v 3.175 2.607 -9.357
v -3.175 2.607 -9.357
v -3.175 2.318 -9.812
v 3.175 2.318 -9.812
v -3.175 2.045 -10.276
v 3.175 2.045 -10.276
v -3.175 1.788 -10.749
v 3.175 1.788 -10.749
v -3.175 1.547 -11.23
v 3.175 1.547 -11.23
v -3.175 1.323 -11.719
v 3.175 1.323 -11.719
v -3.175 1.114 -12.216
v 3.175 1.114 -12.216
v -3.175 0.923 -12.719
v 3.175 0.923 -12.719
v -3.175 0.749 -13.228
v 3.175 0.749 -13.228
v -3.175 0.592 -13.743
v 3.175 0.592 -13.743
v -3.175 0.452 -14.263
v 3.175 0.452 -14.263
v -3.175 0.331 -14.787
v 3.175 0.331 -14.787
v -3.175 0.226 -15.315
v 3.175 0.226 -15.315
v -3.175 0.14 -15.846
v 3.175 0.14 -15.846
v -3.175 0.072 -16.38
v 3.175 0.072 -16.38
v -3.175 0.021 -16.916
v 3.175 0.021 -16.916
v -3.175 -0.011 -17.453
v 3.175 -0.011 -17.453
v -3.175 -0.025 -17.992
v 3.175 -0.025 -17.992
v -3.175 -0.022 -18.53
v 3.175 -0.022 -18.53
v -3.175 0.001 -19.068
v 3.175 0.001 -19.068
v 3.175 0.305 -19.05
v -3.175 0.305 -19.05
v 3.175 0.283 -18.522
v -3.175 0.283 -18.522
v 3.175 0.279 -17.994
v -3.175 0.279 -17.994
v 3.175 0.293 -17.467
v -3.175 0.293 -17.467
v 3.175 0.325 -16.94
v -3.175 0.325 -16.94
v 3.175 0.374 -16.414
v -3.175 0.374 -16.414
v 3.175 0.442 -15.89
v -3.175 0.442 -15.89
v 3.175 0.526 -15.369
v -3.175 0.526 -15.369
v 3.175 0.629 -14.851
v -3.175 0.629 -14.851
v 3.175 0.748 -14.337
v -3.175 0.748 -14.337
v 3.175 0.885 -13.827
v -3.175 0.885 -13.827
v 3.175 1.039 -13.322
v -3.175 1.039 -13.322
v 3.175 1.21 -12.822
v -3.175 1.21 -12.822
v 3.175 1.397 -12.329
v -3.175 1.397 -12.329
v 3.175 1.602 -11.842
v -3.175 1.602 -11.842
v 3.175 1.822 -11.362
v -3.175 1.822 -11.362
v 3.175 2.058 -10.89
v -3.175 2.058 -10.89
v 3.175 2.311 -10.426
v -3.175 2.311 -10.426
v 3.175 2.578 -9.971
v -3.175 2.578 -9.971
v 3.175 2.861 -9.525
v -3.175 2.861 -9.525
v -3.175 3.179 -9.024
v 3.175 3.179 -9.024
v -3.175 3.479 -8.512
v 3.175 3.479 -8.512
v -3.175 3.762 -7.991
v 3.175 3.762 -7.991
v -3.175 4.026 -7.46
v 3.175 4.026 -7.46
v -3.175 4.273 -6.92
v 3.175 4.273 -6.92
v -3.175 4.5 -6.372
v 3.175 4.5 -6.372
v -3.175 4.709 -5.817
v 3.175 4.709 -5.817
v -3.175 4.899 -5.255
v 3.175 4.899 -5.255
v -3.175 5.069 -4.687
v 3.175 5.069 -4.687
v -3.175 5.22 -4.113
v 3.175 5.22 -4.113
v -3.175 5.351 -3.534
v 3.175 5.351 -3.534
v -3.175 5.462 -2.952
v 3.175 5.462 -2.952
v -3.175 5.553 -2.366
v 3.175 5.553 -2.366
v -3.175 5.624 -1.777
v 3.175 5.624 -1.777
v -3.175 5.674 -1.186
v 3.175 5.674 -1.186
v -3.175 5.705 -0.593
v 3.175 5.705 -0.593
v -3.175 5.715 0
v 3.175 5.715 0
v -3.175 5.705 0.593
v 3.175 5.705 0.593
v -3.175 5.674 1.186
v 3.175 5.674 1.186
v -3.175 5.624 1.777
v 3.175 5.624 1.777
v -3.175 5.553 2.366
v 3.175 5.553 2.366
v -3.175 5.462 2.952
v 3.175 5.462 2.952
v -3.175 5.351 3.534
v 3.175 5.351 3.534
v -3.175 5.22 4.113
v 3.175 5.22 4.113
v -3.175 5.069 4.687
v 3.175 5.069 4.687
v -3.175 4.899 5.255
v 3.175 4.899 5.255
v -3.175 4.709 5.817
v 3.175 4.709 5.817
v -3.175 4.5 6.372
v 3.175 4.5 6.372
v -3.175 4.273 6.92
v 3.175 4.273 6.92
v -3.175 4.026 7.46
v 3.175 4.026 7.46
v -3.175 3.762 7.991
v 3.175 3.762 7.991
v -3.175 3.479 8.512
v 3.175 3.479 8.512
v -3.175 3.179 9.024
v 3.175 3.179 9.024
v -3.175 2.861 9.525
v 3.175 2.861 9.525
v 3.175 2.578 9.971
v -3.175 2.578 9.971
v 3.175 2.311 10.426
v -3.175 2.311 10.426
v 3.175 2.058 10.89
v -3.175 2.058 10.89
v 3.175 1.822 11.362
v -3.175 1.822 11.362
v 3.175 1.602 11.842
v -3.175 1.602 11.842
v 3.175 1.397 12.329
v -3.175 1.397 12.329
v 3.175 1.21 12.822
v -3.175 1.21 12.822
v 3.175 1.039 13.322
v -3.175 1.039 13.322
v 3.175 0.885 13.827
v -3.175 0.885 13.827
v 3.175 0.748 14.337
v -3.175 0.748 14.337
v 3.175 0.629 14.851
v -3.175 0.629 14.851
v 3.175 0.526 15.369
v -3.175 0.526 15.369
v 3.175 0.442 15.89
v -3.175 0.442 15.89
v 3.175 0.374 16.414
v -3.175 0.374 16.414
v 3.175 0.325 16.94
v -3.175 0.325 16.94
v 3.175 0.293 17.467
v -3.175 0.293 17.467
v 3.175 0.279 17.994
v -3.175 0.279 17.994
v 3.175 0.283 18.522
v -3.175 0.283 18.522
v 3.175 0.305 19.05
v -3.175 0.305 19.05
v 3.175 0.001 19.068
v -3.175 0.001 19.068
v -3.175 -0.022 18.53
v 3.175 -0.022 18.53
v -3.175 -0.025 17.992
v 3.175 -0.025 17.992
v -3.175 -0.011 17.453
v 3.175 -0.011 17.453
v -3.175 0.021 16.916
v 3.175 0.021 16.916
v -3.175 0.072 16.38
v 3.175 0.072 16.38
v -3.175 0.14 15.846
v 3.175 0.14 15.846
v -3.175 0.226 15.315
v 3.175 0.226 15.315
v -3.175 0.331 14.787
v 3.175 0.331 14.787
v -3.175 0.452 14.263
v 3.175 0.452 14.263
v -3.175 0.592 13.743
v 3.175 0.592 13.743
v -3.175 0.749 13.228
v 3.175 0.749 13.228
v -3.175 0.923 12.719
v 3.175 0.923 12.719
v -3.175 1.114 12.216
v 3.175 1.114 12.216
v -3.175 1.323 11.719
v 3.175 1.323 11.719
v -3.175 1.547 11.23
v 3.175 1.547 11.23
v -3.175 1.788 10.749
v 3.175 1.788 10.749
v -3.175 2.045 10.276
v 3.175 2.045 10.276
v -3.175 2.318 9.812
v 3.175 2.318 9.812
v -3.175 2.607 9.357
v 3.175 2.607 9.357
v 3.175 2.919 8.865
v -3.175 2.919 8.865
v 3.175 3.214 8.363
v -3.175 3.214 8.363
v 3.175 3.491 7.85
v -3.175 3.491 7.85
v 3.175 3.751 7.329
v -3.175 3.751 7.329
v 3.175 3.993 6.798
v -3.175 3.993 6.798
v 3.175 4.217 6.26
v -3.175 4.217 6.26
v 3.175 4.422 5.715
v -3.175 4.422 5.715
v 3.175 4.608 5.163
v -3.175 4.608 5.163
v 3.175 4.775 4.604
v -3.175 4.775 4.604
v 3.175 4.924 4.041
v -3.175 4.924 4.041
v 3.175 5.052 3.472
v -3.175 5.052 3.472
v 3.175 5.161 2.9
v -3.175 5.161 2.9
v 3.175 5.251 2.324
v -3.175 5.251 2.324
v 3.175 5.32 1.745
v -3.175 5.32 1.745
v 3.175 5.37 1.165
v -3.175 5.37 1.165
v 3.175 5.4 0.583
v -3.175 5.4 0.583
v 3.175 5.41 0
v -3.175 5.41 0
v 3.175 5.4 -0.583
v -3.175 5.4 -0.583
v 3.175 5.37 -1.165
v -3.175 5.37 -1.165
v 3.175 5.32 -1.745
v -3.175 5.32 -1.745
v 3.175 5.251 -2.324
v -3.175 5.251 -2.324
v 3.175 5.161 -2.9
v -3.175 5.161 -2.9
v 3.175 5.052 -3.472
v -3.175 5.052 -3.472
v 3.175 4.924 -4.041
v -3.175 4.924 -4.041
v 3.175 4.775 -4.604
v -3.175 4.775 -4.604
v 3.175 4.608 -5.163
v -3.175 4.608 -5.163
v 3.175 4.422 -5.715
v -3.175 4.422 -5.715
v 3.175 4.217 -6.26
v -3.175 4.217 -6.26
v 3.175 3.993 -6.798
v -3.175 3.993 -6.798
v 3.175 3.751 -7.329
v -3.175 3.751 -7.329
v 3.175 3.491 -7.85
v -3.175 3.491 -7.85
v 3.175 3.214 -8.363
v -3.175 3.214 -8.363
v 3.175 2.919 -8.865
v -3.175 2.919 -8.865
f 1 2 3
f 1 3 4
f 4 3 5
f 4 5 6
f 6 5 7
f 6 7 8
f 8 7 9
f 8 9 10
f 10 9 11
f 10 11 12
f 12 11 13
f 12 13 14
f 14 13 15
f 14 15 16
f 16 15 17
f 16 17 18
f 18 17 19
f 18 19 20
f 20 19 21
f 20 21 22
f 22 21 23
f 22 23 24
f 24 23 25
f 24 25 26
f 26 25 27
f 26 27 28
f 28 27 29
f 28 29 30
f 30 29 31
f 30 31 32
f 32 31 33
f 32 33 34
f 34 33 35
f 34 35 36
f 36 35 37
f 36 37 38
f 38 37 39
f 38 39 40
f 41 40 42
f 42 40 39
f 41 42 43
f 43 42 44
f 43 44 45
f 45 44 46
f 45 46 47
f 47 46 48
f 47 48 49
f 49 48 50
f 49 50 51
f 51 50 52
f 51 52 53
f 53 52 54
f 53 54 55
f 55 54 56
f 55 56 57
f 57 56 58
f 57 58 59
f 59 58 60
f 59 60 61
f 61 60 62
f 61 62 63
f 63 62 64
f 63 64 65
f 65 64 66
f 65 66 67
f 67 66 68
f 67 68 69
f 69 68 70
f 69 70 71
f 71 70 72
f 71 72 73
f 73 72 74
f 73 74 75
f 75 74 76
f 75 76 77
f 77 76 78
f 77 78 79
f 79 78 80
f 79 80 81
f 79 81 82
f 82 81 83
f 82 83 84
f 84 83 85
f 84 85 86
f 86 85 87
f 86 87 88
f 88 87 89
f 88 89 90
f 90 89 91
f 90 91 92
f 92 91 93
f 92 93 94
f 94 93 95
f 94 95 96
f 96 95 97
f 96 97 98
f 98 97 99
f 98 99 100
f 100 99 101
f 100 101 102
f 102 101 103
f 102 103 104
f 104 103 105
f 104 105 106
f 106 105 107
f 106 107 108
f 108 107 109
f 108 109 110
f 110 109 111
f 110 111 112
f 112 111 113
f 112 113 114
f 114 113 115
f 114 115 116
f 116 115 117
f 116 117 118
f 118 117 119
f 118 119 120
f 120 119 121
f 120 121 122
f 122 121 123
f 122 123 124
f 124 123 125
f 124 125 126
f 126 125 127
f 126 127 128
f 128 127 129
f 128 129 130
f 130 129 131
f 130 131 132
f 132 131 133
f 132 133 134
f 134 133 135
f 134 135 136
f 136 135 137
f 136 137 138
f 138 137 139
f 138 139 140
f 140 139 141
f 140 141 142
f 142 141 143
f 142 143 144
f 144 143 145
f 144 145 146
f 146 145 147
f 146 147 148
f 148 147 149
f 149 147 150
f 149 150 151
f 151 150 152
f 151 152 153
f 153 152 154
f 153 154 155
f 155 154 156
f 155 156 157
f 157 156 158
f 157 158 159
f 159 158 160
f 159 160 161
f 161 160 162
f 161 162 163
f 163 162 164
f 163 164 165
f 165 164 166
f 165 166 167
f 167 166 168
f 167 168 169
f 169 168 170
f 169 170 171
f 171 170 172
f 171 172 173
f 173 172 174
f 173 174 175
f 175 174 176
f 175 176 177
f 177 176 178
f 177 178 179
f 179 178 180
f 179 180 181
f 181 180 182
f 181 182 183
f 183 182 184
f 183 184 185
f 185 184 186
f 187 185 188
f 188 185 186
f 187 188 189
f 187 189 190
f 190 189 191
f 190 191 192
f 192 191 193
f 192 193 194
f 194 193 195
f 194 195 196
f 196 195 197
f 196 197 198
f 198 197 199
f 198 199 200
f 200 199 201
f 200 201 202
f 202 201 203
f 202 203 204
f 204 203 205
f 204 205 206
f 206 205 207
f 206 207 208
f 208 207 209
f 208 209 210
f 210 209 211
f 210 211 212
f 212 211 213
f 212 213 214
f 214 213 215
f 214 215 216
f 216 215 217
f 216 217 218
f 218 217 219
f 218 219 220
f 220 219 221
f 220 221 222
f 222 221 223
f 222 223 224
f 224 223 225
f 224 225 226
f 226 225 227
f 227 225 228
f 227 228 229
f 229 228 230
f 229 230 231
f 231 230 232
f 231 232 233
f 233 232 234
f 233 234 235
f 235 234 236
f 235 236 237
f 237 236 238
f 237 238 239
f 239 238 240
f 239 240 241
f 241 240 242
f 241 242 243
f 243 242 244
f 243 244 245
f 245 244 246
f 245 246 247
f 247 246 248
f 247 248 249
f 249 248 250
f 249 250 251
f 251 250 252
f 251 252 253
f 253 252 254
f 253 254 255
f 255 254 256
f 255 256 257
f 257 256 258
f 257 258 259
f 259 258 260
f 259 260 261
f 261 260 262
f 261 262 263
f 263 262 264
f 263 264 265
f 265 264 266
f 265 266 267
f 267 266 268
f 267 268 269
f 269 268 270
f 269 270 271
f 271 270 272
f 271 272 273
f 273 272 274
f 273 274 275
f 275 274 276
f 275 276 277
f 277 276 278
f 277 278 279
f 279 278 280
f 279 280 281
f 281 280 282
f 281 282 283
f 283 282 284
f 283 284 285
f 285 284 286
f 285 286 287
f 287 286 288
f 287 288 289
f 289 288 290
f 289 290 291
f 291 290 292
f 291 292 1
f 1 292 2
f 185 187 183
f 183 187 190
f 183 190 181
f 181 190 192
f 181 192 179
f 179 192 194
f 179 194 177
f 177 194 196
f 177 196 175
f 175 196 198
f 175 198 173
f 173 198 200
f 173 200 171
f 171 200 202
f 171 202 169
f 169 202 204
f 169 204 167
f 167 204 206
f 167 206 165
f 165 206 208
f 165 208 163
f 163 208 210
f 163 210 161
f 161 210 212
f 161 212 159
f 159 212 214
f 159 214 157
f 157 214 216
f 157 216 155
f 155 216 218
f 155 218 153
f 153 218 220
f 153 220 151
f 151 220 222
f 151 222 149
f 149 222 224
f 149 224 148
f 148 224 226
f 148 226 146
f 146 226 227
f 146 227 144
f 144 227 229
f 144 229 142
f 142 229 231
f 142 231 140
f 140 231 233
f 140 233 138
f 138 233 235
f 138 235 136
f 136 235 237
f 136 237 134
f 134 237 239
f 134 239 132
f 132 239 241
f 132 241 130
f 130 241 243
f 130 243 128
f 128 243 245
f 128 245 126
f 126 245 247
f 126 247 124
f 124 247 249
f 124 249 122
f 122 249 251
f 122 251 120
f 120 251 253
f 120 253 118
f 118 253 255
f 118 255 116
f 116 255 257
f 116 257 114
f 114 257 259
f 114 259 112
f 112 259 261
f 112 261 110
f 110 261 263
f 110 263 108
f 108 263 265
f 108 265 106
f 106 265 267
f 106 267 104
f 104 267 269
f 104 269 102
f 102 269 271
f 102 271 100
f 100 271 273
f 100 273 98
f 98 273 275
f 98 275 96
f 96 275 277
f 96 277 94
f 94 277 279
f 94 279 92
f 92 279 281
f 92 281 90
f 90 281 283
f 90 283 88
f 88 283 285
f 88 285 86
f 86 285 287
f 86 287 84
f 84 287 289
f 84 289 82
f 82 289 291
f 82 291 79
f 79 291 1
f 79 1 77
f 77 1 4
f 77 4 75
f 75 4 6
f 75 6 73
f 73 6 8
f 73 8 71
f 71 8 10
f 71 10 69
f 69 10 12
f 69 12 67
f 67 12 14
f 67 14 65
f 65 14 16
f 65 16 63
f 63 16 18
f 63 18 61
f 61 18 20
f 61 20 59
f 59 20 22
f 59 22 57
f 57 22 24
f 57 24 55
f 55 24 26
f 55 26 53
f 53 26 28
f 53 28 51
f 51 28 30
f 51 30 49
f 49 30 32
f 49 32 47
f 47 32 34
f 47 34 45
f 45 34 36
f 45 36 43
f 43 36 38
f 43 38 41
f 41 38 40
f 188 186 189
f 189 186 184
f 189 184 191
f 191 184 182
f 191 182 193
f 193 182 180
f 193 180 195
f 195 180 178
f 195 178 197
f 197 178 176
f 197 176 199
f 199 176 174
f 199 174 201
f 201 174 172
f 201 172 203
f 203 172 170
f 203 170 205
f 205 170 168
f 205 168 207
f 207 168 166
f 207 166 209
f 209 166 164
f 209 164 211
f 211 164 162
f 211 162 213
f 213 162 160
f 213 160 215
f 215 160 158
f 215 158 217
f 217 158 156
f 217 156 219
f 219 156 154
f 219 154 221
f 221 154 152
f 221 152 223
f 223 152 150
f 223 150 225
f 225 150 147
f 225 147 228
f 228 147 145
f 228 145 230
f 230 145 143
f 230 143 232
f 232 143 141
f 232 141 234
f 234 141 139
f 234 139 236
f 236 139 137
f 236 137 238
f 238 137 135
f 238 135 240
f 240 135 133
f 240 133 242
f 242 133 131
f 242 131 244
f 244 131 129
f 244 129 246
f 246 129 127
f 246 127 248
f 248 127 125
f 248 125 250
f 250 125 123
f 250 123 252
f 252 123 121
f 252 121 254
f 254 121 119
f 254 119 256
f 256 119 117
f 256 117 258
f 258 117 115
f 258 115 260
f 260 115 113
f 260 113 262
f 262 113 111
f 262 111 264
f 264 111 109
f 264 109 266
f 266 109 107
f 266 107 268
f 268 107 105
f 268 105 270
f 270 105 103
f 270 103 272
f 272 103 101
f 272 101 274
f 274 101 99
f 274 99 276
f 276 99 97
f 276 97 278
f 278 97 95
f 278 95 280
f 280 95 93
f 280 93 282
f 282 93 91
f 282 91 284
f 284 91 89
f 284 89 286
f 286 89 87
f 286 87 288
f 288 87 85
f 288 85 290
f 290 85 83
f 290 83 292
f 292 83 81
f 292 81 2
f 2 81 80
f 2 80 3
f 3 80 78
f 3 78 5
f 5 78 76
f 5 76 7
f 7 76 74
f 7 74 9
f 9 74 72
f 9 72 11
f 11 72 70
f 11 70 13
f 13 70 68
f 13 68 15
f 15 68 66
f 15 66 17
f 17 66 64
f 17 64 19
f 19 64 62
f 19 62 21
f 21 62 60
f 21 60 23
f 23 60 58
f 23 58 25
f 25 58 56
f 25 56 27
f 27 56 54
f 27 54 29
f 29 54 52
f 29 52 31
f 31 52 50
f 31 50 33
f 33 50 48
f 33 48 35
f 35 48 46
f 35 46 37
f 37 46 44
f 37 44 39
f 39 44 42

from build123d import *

# Parameters (mm, degrees)
EXTRUDE_THIN1_DEPTH = 3.175


with BuildPart() as part:
    # Sketch1 → Extrude-Thin1 (new, symmetric)
    with BuildSketch(Plane(origin=(0, 0, 0), x_dir=(0, 0, -1), z_dir=(1, 0, 0))):
        with BuildLine():
            ThreePointArc((-19.05, 0.3048), (-14.081230666, 0.814453346), (-9.525000281, 2.861201965))
            ThreePointArc((-9.525000281, 2.861201965), (0, 5.715), (9.525000281, 2.861201965))
            ThreePointArc((9.525000281, 2.861201965), (14.081230666, 0.814453346), (19.05, 0.3048))
            Line((19.05, 0.3048), (19.067602036, 0.000508679))
            ThreePointArc((19.067602036, 0.000508679), (14.002221921, 0.520071522), (9.357401999, 2.606616309))
            ThreePointArc((9.357401999, 2.606616309), (0, 5.4102), (-9.357401999, 2.606616309))
            ThreePointArc((-9.357401999, 2.606616309), (-14.002221921, 0.520071522), (-19.067602036, 0.000508679))
            Line((-19.067602036, 0.000508679), (-19.05, 0.3048))
        make_face()
    extrude(amount=EXTRUDE_THIN1_DEPTH, both=True)


solid = part.part
